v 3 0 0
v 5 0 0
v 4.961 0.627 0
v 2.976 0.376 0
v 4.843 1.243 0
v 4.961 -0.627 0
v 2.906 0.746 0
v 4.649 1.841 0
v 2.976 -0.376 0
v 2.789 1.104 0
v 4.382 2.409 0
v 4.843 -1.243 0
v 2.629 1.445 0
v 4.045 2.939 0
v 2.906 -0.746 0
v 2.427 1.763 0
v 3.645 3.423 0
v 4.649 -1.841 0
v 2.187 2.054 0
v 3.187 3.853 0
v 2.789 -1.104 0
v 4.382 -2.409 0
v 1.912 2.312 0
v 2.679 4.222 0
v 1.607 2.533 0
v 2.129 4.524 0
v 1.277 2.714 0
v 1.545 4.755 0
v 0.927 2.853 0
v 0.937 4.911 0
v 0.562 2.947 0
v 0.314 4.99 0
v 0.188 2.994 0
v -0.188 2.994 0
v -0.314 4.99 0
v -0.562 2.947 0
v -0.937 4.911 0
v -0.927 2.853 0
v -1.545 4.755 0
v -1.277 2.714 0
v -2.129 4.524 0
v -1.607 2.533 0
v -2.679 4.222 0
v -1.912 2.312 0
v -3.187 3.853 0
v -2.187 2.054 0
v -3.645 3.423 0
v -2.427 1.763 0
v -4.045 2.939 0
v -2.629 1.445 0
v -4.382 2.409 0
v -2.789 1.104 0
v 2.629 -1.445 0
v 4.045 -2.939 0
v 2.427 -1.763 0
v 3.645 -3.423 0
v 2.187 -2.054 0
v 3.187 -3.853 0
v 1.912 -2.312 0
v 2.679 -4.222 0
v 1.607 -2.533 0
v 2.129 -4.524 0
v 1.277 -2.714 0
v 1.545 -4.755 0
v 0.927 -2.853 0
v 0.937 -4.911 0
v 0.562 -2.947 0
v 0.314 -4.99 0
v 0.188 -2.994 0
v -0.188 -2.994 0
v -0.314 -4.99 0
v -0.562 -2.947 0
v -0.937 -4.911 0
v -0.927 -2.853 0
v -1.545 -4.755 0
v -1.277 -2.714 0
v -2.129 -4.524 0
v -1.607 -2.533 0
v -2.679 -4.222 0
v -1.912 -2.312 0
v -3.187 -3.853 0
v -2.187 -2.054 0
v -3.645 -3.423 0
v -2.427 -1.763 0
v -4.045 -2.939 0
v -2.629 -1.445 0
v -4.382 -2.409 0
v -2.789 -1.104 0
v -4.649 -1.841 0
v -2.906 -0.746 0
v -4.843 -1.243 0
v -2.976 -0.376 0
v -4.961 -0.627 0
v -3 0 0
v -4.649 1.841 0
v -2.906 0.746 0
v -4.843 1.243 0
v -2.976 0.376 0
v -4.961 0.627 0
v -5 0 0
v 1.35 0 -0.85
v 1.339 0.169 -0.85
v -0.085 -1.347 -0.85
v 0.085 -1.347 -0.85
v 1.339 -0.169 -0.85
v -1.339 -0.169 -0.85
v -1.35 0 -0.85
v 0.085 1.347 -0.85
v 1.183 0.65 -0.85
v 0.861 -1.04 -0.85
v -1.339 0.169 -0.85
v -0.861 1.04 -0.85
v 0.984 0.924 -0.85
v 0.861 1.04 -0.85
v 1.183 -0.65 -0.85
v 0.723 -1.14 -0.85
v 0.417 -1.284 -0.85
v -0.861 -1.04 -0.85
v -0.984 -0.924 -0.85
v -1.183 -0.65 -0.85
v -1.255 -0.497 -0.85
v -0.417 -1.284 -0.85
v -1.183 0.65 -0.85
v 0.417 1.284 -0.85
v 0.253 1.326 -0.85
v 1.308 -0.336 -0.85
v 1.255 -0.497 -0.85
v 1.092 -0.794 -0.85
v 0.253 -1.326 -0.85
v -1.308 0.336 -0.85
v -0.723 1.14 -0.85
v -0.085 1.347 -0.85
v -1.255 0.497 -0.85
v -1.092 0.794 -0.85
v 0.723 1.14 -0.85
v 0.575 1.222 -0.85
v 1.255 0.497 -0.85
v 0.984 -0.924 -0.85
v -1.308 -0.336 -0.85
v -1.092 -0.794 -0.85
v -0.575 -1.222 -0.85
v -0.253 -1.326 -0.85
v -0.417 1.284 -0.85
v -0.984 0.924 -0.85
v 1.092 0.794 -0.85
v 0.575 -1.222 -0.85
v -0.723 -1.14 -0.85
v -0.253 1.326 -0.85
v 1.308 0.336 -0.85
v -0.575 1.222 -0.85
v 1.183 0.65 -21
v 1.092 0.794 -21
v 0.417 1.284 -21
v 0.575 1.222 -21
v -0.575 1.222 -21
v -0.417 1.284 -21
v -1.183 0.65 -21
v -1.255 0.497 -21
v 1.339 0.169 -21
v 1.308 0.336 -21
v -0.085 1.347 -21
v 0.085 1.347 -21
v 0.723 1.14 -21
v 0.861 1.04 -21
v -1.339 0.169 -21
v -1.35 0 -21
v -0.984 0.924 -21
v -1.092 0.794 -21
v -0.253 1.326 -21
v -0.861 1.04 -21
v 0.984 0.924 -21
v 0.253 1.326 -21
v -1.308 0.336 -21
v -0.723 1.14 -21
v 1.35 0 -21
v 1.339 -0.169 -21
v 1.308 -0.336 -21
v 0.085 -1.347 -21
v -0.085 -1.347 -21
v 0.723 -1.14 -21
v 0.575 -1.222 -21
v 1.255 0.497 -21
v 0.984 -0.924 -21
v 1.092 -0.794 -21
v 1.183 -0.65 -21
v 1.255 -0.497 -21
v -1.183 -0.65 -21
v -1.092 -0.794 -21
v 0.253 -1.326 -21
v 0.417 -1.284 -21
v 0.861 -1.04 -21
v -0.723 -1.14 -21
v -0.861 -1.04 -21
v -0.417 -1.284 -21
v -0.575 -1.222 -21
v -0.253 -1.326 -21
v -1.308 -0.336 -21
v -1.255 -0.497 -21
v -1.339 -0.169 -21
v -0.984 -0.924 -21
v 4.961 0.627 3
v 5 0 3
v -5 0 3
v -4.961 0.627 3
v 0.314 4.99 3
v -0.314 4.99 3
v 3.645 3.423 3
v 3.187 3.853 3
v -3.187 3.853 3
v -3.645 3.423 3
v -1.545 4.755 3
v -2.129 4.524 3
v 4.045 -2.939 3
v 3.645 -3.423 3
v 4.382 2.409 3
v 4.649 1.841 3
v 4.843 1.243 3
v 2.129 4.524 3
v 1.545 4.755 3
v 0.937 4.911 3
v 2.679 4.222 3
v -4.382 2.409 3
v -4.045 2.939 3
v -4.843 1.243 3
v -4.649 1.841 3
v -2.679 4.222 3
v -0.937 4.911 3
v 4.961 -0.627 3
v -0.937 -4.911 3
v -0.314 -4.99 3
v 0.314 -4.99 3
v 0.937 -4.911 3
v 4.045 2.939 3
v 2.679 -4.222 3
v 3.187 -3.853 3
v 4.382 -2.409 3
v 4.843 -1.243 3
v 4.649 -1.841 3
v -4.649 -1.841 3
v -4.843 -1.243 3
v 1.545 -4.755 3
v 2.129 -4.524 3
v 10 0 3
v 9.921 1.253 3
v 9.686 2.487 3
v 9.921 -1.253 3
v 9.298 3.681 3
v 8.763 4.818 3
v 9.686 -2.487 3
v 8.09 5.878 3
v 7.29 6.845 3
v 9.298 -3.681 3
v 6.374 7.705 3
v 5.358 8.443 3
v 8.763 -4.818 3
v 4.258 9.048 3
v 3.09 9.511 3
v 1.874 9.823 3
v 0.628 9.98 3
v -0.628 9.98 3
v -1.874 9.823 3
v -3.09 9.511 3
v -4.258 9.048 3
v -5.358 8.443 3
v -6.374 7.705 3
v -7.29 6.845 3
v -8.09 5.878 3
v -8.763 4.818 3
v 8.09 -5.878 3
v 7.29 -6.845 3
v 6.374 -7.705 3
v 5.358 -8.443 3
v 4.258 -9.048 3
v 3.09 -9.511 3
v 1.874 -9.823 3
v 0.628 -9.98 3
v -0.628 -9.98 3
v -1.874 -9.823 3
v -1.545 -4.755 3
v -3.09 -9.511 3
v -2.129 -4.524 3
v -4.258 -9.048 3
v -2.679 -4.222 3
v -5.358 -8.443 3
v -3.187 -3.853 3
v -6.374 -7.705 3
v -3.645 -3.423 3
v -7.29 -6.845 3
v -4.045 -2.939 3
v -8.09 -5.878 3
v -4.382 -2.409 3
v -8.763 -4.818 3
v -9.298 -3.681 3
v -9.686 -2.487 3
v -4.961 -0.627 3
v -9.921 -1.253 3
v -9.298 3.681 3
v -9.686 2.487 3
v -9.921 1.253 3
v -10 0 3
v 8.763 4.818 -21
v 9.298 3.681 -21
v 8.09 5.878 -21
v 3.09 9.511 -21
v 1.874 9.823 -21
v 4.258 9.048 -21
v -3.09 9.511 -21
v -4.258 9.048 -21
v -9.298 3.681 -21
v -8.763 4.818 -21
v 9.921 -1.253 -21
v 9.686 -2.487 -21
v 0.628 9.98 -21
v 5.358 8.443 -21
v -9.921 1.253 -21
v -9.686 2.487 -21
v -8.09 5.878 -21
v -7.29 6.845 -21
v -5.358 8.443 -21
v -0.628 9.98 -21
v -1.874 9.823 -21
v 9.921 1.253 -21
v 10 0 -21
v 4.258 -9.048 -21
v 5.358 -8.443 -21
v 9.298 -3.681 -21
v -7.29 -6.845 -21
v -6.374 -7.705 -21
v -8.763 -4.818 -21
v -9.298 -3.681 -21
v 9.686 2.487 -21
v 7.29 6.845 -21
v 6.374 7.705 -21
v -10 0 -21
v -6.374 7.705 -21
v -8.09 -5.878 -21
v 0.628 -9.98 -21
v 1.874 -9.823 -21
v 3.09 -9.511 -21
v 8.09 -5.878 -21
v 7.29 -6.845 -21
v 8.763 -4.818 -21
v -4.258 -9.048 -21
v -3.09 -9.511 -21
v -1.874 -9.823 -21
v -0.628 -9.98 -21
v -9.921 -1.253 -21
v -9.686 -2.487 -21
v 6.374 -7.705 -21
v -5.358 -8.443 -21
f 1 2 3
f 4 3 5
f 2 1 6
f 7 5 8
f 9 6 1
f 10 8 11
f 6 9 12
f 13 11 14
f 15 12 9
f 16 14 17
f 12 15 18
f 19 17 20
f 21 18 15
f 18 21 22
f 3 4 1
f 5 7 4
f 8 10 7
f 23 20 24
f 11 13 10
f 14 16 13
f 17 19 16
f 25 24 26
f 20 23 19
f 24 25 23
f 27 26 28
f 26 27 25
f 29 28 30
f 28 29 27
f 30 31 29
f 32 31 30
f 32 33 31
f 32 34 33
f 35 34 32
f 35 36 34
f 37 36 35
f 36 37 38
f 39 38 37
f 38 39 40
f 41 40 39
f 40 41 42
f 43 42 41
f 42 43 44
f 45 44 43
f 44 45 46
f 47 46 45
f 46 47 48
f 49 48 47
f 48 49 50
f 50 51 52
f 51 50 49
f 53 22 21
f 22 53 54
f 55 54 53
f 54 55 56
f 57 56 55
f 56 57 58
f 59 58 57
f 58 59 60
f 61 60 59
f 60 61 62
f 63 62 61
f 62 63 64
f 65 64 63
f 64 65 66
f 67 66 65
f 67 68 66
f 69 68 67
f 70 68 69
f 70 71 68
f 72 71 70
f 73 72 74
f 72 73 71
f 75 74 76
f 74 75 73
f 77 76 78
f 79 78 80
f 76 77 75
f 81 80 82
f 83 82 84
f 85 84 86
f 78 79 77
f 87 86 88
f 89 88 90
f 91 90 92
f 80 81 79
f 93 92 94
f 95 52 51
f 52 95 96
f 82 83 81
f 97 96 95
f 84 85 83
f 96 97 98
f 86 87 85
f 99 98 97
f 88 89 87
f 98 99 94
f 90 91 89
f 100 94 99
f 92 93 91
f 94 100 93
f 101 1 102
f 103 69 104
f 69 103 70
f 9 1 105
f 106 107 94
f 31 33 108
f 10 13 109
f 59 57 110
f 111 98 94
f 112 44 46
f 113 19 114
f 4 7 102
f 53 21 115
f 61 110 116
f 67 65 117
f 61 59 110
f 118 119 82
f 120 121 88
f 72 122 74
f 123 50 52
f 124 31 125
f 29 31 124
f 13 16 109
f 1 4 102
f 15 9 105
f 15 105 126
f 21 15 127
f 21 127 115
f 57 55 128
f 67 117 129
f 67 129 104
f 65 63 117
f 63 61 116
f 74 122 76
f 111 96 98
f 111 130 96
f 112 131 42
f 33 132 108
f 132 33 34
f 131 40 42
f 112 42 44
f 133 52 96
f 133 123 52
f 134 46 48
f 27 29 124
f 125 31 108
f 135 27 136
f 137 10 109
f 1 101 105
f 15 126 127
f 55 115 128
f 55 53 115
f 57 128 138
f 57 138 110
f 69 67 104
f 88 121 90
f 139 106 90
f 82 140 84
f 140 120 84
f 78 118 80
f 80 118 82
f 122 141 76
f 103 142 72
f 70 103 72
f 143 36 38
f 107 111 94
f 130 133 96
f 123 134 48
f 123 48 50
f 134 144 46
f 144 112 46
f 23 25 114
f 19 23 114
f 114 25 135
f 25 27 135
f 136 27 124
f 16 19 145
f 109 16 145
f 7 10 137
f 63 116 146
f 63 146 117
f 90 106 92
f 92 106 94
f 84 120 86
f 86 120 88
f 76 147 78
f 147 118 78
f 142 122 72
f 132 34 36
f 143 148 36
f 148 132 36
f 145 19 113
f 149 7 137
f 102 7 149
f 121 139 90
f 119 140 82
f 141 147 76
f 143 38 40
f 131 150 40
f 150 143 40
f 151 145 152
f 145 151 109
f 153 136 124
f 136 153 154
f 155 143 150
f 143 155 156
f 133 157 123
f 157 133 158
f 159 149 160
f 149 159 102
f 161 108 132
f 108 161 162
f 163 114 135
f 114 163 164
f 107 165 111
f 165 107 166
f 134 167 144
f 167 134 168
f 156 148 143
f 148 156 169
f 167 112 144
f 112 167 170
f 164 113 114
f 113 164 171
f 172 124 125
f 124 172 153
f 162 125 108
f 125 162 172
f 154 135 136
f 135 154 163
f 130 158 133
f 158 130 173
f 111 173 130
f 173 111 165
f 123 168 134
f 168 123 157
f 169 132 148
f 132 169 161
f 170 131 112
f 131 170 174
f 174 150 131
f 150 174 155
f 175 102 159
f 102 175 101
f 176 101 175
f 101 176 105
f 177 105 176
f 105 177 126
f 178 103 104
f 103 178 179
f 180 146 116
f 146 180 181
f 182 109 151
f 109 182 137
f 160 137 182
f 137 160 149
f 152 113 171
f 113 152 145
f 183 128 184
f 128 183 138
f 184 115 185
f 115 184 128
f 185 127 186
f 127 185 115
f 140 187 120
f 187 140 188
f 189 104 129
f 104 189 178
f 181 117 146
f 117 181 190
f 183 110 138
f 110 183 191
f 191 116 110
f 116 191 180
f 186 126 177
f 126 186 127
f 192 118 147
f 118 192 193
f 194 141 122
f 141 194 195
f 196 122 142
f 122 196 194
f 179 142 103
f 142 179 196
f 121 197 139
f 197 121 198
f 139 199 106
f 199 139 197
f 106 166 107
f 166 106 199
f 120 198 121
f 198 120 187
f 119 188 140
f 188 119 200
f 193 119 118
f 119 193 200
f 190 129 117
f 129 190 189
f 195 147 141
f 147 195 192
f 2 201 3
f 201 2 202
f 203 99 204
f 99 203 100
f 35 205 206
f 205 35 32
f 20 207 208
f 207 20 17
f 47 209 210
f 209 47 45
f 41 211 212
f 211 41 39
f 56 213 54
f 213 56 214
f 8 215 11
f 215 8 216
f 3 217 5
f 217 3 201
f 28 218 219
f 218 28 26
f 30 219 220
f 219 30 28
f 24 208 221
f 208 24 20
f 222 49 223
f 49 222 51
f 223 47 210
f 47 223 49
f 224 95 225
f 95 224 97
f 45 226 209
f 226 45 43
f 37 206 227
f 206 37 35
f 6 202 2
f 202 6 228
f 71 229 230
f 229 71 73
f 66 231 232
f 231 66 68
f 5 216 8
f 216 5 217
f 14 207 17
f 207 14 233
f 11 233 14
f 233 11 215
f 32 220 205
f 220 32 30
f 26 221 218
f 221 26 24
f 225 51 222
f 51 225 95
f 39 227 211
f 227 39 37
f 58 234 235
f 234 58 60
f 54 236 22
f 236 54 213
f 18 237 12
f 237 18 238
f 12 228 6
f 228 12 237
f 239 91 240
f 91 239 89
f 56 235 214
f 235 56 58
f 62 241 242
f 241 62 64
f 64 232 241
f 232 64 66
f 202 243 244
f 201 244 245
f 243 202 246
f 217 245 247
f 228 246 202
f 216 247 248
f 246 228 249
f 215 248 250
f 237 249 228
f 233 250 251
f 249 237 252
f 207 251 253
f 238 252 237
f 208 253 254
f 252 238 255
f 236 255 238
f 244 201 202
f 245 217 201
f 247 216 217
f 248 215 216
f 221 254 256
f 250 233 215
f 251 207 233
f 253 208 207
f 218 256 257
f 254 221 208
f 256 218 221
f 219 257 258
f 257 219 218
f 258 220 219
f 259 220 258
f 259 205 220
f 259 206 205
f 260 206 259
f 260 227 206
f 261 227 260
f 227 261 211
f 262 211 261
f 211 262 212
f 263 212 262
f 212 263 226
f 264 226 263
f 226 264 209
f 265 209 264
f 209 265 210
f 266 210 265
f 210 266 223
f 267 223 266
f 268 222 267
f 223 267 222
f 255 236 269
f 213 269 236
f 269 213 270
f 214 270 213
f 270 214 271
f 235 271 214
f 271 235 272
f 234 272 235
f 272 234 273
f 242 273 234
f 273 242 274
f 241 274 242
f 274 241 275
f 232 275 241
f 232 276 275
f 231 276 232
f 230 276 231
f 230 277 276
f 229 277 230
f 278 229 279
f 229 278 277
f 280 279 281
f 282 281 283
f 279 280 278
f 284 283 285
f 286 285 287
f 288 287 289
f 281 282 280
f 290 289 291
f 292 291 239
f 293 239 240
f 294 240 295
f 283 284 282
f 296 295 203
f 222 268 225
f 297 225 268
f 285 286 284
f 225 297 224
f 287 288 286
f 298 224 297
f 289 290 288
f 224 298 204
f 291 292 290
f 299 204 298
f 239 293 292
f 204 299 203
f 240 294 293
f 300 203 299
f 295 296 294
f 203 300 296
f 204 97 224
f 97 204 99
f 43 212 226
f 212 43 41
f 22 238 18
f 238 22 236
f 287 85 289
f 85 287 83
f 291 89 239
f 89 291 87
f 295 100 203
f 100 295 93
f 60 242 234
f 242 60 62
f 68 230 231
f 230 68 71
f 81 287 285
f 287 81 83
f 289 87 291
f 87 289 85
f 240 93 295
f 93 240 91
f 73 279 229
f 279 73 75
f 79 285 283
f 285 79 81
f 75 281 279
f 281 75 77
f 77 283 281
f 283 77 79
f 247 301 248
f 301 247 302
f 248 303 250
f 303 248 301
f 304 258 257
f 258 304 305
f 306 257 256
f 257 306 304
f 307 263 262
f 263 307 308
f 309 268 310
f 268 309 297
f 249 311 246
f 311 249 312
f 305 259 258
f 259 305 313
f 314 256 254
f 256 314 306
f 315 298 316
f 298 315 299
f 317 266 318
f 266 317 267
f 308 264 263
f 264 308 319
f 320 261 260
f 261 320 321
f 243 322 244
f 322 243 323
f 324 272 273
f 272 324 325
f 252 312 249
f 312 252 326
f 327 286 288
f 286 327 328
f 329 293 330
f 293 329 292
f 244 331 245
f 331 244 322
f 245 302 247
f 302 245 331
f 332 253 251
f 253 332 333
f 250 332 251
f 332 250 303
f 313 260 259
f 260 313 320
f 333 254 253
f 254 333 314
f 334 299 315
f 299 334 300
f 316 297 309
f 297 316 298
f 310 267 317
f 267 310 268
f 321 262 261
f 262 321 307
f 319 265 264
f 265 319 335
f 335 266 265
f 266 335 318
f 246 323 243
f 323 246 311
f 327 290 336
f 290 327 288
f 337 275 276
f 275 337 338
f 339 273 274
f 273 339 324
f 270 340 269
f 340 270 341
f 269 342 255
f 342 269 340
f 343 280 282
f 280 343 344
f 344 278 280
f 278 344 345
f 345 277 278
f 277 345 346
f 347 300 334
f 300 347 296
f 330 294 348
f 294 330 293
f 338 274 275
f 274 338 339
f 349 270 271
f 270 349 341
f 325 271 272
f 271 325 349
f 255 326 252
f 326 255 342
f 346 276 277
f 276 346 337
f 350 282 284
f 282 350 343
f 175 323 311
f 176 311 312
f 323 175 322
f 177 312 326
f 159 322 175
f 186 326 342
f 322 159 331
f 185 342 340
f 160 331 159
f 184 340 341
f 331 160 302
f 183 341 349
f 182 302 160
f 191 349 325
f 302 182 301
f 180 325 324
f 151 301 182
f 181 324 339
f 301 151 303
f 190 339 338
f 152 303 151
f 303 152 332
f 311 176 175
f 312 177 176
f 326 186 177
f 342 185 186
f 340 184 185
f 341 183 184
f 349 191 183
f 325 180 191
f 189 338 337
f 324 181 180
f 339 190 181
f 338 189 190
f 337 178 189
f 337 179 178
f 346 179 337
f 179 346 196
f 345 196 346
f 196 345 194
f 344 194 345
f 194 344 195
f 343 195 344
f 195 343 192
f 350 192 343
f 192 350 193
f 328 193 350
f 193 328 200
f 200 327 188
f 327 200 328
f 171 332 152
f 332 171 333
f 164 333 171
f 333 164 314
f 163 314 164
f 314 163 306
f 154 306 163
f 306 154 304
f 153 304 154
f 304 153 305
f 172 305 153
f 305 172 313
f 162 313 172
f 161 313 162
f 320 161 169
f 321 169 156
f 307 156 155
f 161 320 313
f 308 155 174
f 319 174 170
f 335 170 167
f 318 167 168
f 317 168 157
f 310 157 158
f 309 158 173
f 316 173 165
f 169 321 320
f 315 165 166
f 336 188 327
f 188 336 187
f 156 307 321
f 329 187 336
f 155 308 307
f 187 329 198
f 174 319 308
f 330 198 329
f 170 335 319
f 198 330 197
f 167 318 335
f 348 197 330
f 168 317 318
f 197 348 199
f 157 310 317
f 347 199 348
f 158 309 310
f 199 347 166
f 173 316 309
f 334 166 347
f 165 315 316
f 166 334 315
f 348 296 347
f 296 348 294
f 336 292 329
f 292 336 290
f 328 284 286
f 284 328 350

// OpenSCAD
$fn = 50;

difference() {
	union() {
		translate(v = [0, 0, -21.0]) {
			cylinder(h = 24, r = 10.0);
		}
	}
	union() {
		translate(v = [0, 0, 0]) {
			rotate(a = [0, 0, 0]) {
				difference() {
					union() {
						translate(v = [0, 0, -24.0]) {
							cylinder(h = 24, r = 1.0);
						}
						translate(v = [0, 0, -0.85]) {
							cylinder(h = 0.85, r1 = 1.35, r2 = 3.0);
						}
						translate(v = [0, 0, -24.0]) {
							cylinder(h = 24, r = 1.35);
						}
						translate(v = [0, 0, -24.0]) {
							cylinder(h = 24, r = 1.0);
						}
					}
					union();
				}
			}
		}
		#cylinder(h = 3, r = 5.0);
	}
}
